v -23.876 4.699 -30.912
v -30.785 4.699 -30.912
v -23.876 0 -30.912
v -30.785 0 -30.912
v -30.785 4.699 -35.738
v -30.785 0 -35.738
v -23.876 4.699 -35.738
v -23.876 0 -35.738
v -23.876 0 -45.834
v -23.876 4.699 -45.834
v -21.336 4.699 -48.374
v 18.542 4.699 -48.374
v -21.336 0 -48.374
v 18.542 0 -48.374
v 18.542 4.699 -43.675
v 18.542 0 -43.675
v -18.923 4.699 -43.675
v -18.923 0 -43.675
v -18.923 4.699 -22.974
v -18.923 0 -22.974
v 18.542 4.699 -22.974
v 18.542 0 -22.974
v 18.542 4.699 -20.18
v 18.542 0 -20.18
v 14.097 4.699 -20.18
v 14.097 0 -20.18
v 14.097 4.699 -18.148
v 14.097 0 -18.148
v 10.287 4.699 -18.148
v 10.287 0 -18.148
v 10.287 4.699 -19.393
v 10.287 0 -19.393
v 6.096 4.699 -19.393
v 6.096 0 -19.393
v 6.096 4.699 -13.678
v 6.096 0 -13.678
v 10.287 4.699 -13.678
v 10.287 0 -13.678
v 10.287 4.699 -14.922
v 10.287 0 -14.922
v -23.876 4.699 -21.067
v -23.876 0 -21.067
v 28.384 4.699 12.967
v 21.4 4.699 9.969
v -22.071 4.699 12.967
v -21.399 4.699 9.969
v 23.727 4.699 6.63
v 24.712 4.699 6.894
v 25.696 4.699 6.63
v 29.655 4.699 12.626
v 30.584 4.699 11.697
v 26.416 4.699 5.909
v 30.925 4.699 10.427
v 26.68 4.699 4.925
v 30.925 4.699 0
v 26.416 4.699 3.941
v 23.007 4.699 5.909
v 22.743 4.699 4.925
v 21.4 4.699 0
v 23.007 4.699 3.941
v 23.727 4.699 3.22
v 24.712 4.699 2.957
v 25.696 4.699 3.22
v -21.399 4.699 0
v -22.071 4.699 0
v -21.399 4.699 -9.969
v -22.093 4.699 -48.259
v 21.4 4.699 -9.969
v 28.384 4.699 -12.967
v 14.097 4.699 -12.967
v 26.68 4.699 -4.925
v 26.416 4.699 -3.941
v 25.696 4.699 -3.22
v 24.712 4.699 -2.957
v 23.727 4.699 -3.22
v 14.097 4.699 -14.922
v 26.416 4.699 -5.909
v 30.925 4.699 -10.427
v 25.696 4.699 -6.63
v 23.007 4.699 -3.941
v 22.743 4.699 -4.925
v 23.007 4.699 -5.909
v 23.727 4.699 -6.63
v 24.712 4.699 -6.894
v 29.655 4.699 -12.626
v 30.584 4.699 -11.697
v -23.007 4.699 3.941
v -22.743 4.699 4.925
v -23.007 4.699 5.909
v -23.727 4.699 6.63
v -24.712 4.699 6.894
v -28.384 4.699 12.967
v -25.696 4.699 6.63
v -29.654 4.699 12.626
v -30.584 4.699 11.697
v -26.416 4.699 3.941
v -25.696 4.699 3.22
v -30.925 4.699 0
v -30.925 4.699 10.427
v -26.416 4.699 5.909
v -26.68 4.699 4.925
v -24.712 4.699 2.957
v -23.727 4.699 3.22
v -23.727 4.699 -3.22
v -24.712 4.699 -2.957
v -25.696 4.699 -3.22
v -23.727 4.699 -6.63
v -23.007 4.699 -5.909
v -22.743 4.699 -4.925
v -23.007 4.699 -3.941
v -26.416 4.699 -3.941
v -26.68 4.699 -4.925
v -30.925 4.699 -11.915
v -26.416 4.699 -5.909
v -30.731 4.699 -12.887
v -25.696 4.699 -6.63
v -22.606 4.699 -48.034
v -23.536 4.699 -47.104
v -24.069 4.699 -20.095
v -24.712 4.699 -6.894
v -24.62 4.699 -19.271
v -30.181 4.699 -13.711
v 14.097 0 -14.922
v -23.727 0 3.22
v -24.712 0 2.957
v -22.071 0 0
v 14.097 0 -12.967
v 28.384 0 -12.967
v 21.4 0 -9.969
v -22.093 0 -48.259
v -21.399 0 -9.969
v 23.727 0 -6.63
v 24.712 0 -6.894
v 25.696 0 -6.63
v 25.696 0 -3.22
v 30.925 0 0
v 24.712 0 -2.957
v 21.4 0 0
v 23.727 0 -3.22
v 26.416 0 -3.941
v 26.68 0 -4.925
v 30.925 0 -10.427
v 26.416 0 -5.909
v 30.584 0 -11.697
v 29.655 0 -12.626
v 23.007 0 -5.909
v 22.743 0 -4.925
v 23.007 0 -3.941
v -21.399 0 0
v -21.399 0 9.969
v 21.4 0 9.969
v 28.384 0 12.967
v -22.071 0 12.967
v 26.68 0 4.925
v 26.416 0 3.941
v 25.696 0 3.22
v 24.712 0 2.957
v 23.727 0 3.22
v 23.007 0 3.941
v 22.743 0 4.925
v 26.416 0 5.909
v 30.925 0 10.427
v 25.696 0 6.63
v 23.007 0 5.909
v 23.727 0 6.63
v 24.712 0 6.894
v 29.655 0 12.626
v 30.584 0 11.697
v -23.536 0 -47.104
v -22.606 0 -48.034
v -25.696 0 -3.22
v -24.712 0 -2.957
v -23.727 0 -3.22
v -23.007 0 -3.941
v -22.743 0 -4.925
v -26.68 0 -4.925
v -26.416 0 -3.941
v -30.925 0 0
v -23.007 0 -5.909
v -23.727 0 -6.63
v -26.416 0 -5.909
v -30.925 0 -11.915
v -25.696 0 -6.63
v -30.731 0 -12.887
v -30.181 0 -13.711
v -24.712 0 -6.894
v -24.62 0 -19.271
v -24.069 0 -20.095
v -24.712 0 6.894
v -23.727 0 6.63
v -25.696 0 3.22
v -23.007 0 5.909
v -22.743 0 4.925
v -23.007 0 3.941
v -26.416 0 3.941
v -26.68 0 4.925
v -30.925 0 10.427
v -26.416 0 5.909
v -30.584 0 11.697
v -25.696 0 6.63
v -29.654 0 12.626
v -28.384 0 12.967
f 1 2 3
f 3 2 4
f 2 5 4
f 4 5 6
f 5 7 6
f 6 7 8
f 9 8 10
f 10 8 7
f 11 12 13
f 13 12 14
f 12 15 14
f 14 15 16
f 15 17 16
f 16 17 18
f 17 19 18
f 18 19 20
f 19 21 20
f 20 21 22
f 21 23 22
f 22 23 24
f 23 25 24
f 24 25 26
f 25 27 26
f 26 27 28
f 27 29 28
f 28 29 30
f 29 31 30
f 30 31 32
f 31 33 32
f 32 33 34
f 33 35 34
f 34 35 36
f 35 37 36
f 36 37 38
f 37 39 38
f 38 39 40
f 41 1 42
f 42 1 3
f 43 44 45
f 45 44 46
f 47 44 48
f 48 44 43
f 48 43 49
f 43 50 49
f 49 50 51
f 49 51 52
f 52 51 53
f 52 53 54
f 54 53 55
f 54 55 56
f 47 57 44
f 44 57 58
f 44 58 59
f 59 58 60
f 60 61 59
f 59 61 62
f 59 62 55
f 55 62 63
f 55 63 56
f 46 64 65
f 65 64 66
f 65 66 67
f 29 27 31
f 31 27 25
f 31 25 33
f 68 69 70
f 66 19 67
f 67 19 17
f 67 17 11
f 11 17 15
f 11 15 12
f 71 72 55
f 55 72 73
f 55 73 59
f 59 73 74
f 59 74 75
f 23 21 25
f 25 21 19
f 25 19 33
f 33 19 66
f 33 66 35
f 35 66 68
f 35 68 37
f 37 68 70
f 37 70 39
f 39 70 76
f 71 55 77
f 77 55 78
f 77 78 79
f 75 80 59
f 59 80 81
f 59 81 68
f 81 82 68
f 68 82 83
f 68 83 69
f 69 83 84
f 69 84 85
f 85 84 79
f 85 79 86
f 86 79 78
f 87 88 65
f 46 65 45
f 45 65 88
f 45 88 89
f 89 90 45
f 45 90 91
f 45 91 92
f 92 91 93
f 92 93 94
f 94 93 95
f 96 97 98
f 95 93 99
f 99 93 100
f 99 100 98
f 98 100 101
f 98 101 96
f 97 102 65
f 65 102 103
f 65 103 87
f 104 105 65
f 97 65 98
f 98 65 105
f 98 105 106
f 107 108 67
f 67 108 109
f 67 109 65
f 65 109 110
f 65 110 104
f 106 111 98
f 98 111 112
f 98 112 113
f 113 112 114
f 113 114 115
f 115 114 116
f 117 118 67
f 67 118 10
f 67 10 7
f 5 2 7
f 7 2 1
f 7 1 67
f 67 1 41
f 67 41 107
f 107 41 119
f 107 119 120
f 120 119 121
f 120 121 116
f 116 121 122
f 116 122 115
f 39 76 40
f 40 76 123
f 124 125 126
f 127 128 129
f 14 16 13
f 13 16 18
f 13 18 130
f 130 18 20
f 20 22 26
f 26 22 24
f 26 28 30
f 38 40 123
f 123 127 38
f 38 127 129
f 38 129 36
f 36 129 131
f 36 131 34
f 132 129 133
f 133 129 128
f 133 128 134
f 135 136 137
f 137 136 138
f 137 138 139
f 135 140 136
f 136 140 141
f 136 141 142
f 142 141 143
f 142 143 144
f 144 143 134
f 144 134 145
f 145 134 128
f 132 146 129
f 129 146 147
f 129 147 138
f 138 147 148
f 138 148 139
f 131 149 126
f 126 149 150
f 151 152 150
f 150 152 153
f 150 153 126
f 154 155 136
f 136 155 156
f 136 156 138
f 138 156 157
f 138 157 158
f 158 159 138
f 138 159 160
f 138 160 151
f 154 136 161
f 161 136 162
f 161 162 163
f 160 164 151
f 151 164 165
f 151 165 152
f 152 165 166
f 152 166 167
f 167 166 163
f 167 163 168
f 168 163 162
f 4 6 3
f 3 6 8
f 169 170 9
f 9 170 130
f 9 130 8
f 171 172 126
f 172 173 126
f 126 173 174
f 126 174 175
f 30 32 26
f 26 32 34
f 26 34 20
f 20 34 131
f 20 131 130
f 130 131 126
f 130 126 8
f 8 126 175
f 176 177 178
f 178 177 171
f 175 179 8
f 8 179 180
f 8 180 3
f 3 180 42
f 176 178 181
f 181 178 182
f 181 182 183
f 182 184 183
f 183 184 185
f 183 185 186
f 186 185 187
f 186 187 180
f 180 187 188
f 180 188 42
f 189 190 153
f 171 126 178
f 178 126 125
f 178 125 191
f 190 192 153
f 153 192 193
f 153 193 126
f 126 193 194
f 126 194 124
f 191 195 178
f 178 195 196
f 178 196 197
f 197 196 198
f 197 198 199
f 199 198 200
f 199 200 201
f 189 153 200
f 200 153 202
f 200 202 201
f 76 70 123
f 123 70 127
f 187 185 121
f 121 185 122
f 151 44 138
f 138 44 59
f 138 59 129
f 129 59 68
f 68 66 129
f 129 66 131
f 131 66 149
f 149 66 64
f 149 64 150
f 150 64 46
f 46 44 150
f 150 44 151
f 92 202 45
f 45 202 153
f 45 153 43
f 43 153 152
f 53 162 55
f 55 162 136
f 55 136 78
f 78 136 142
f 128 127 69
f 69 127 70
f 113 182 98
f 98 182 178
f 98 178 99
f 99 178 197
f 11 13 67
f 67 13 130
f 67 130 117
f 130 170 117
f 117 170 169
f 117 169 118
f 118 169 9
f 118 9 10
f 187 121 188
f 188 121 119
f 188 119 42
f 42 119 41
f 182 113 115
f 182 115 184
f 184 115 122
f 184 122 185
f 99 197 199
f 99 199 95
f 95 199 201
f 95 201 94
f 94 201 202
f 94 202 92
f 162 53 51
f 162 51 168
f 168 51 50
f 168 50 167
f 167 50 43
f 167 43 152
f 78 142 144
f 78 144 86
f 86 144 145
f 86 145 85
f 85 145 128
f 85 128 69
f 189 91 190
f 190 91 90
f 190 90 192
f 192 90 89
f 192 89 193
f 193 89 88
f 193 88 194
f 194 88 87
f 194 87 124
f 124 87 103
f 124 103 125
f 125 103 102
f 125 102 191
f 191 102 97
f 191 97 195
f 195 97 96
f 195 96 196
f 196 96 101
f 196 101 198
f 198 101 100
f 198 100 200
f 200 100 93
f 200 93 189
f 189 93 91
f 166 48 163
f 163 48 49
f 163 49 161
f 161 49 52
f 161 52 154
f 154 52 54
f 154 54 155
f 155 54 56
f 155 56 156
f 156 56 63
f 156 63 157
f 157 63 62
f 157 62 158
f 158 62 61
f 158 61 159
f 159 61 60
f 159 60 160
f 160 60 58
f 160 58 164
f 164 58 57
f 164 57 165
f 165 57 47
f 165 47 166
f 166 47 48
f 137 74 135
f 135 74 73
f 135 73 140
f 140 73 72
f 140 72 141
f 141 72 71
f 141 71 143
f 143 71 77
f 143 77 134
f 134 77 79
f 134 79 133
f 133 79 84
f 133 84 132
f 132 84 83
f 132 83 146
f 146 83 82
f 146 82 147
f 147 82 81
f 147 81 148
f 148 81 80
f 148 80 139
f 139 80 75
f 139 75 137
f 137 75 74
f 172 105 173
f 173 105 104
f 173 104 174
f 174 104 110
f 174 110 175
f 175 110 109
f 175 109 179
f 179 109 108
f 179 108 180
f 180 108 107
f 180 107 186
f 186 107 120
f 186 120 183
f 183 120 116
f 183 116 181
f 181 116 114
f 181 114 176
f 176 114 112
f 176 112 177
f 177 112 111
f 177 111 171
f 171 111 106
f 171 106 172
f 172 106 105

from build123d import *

# Parameters (mm, degrees)
SKETCH1_W               = 42.799
SKETCH1_H               = 19.939
BOSS_EXTRUDE1_DEPTH     = 4.699
FILLET1_R               = 2.54
CUT_EXTRUDE2_DEPTH      = 58.606234053
CUT_EXTRUDE2_DEPTH_BACK = 58.606234053
SKETCH1_3_R             = 1.9685


with BuildPart() as part:
    # Sketch1 → Boss-Extrude1 (new body)
    with BuildSketch(Plane(origin=(0, 0, 0), x_dir=(1, 0, 0), z_dir=(0, 1, 0))):
        Polygon((-23.876, 20.0152), (-30.9245, 12.9667), (-30.9245, -12.9667), (30.9245, -12.9667), (30.9245, 12.9667), (14.097, 12.9667), (14.097, 14.9225), (10.287, 14.9225), (10.287, 13.6779), (6.096, 13.6779), (6.096, 19.3929), (10.287, 19.3929), (10.287, 18.1483), (14.097, 18.1483), (14.097, 20.1803), (18.542, 20.1803), (18.542, 22.9743), (-18.923, 22.9743), (-18.923, 43.6753), (18.542, 43.6753), (18.542, 48.3743), (-23.876, 48.3743), (-23.876, 35.7378), (-30.7848, 35.7378), (-30.7848, 30.9118), (-23.876, 30.9118), align=None)
        Rectangle(SKETCH1_W, SKETCH1_H, mode=Mode.SUBTRACT)
    extrude(amount=BOSS_EXTRUDE1_DEPTH)

    # Fillet1
    fillet1_edges = [part.edges().sort_by_distance(p)[0] for p in [
        (-23.876, 2.3495, -48.3743),
        (-23.876, 2.3495, -20.0152),
        (-30.9245, 2.3495, -12.9667),
        (-30.9245, 2.3495, 12.9667),
        (30.9245, 2.3495, 12.9667),
        (30.9245, 2.3495, -12.9667),
    ]]
    fillet(fillet1_edges, radius=FILLET1_R)

    # Sketch1<3> → Cut-Extrude2 (cut, two sides: drawn at the far end of the back side and taken through both)
    with BuildSketch(Plane(origin=(0, 0, 0), x_dir=(1, 0, 0), z_dir=(0, 1, 0)).offset(-CUT_EXTRUDE2_DEPTH_BACK)):
        with Locations((24.71166, 4.92506)):
            Circle(SKETCH1_3_R)
        with Locations((24.71166, -4.92506)):
            Circle(SKETCH1_3_R)
        with Locations((-24.71166, -4.92506)):
            Circle(SKETCH1_3_R)
        with Locations((-24.71166, 4.92506)):
            Circle(SKETCH1_3_R)
    extrude(amount=CUT_EXTRUDE2_DEPTH + CUT_EXTRUDE2_DEPTH_BACK, mode=Mode.SUBTRACT)


solid = part.part
